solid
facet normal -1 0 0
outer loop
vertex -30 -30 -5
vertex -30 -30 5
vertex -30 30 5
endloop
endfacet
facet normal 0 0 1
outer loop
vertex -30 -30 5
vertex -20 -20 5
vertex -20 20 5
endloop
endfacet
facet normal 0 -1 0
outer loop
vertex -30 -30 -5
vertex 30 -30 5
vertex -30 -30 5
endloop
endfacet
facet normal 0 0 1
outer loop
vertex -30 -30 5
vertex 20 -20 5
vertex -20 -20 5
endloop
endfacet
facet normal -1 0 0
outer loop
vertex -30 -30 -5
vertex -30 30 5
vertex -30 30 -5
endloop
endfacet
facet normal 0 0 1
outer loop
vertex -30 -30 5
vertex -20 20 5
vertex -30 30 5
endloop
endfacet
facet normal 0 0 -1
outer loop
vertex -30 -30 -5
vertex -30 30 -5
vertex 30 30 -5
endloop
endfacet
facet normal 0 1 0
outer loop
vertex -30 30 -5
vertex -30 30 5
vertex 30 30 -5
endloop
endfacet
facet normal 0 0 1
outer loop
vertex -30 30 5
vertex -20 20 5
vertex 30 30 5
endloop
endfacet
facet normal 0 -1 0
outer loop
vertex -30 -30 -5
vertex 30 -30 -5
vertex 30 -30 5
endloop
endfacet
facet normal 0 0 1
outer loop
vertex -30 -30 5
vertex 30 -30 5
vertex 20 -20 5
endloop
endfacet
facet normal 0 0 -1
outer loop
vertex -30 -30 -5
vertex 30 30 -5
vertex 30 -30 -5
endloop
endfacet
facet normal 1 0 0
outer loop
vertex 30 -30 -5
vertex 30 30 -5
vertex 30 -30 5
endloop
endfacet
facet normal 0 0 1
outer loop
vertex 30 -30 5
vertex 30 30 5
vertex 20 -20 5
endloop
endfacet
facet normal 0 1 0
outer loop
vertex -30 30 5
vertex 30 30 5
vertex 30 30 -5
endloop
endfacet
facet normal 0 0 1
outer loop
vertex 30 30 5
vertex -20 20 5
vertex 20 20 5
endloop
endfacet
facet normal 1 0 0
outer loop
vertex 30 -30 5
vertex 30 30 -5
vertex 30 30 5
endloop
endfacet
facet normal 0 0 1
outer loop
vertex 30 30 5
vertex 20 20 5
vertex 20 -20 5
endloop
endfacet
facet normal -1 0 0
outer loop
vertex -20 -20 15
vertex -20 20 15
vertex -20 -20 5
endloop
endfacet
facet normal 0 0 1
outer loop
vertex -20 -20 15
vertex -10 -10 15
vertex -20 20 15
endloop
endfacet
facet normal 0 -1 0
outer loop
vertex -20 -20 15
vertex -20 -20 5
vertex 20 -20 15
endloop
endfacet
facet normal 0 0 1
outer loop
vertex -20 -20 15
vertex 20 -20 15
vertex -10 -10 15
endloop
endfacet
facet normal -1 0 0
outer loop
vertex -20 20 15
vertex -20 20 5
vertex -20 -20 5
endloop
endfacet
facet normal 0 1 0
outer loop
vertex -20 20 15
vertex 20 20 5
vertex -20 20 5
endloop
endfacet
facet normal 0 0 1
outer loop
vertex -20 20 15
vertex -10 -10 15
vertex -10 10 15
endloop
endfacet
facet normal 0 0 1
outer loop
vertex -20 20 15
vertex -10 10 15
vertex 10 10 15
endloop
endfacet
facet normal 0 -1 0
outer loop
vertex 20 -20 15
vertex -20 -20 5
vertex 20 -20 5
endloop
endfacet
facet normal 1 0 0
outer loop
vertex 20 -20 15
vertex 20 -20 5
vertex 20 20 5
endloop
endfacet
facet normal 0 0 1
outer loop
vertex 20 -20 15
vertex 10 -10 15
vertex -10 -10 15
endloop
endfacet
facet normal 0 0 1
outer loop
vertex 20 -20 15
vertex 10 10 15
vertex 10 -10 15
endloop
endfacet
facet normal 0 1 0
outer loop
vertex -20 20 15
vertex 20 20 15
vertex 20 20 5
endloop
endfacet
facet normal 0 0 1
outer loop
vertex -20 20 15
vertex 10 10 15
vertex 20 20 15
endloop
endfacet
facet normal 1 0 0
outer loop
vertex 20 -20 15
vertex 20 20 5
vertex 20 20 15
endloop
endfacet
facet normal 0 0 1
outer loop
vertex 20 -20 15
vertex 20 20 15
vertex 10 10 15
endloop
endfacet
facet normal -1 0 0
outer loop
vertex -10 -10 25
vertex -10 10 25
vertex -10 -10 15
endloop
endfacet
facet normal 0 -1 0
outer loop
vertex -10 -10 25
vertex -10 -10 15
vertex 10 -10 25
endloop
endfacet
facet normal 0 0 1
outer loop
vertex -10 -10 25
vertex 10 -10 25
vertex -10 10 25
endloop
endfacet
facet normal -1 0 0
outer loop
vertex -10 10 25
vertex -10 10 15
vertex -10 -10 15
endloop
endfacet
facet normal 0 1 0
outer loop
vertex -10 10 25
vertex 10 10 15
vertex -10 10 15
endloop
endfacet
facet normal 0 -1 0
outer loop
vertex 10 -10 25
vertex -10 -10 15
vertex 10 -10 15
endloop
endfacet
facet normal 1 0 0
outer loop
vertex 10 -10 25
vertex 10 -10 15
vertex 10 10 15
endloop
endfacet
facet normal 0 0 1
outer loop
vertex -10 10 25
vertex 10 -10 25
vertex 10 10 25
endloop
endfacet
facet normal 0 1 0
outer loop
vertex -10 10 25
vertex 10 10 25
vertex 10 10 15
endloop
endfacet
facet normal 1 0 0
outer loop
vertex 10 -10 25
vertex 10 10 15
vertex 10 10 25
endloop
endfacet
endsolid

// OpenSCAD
// 3段の階段状ピラミッド（中心揃え）
$fn = 100;

module plate(size_xy, height, z=0) {
    half = size_xy / 2;
    translate([0, 0, z])
        cube([size_xy, size_xy, height], center=true);
}

// 板サイズ
base_xy = 60;
mid_xy  = 40;
top_xy  = 20;
h = 10;

// 3段積み
union() {
    plate(base_xy, h, 0);     // 下段
    plate(mid_xy,  h, h);     // 中段
    plate(top_xy,  h, 2*h);   // 上段
}
